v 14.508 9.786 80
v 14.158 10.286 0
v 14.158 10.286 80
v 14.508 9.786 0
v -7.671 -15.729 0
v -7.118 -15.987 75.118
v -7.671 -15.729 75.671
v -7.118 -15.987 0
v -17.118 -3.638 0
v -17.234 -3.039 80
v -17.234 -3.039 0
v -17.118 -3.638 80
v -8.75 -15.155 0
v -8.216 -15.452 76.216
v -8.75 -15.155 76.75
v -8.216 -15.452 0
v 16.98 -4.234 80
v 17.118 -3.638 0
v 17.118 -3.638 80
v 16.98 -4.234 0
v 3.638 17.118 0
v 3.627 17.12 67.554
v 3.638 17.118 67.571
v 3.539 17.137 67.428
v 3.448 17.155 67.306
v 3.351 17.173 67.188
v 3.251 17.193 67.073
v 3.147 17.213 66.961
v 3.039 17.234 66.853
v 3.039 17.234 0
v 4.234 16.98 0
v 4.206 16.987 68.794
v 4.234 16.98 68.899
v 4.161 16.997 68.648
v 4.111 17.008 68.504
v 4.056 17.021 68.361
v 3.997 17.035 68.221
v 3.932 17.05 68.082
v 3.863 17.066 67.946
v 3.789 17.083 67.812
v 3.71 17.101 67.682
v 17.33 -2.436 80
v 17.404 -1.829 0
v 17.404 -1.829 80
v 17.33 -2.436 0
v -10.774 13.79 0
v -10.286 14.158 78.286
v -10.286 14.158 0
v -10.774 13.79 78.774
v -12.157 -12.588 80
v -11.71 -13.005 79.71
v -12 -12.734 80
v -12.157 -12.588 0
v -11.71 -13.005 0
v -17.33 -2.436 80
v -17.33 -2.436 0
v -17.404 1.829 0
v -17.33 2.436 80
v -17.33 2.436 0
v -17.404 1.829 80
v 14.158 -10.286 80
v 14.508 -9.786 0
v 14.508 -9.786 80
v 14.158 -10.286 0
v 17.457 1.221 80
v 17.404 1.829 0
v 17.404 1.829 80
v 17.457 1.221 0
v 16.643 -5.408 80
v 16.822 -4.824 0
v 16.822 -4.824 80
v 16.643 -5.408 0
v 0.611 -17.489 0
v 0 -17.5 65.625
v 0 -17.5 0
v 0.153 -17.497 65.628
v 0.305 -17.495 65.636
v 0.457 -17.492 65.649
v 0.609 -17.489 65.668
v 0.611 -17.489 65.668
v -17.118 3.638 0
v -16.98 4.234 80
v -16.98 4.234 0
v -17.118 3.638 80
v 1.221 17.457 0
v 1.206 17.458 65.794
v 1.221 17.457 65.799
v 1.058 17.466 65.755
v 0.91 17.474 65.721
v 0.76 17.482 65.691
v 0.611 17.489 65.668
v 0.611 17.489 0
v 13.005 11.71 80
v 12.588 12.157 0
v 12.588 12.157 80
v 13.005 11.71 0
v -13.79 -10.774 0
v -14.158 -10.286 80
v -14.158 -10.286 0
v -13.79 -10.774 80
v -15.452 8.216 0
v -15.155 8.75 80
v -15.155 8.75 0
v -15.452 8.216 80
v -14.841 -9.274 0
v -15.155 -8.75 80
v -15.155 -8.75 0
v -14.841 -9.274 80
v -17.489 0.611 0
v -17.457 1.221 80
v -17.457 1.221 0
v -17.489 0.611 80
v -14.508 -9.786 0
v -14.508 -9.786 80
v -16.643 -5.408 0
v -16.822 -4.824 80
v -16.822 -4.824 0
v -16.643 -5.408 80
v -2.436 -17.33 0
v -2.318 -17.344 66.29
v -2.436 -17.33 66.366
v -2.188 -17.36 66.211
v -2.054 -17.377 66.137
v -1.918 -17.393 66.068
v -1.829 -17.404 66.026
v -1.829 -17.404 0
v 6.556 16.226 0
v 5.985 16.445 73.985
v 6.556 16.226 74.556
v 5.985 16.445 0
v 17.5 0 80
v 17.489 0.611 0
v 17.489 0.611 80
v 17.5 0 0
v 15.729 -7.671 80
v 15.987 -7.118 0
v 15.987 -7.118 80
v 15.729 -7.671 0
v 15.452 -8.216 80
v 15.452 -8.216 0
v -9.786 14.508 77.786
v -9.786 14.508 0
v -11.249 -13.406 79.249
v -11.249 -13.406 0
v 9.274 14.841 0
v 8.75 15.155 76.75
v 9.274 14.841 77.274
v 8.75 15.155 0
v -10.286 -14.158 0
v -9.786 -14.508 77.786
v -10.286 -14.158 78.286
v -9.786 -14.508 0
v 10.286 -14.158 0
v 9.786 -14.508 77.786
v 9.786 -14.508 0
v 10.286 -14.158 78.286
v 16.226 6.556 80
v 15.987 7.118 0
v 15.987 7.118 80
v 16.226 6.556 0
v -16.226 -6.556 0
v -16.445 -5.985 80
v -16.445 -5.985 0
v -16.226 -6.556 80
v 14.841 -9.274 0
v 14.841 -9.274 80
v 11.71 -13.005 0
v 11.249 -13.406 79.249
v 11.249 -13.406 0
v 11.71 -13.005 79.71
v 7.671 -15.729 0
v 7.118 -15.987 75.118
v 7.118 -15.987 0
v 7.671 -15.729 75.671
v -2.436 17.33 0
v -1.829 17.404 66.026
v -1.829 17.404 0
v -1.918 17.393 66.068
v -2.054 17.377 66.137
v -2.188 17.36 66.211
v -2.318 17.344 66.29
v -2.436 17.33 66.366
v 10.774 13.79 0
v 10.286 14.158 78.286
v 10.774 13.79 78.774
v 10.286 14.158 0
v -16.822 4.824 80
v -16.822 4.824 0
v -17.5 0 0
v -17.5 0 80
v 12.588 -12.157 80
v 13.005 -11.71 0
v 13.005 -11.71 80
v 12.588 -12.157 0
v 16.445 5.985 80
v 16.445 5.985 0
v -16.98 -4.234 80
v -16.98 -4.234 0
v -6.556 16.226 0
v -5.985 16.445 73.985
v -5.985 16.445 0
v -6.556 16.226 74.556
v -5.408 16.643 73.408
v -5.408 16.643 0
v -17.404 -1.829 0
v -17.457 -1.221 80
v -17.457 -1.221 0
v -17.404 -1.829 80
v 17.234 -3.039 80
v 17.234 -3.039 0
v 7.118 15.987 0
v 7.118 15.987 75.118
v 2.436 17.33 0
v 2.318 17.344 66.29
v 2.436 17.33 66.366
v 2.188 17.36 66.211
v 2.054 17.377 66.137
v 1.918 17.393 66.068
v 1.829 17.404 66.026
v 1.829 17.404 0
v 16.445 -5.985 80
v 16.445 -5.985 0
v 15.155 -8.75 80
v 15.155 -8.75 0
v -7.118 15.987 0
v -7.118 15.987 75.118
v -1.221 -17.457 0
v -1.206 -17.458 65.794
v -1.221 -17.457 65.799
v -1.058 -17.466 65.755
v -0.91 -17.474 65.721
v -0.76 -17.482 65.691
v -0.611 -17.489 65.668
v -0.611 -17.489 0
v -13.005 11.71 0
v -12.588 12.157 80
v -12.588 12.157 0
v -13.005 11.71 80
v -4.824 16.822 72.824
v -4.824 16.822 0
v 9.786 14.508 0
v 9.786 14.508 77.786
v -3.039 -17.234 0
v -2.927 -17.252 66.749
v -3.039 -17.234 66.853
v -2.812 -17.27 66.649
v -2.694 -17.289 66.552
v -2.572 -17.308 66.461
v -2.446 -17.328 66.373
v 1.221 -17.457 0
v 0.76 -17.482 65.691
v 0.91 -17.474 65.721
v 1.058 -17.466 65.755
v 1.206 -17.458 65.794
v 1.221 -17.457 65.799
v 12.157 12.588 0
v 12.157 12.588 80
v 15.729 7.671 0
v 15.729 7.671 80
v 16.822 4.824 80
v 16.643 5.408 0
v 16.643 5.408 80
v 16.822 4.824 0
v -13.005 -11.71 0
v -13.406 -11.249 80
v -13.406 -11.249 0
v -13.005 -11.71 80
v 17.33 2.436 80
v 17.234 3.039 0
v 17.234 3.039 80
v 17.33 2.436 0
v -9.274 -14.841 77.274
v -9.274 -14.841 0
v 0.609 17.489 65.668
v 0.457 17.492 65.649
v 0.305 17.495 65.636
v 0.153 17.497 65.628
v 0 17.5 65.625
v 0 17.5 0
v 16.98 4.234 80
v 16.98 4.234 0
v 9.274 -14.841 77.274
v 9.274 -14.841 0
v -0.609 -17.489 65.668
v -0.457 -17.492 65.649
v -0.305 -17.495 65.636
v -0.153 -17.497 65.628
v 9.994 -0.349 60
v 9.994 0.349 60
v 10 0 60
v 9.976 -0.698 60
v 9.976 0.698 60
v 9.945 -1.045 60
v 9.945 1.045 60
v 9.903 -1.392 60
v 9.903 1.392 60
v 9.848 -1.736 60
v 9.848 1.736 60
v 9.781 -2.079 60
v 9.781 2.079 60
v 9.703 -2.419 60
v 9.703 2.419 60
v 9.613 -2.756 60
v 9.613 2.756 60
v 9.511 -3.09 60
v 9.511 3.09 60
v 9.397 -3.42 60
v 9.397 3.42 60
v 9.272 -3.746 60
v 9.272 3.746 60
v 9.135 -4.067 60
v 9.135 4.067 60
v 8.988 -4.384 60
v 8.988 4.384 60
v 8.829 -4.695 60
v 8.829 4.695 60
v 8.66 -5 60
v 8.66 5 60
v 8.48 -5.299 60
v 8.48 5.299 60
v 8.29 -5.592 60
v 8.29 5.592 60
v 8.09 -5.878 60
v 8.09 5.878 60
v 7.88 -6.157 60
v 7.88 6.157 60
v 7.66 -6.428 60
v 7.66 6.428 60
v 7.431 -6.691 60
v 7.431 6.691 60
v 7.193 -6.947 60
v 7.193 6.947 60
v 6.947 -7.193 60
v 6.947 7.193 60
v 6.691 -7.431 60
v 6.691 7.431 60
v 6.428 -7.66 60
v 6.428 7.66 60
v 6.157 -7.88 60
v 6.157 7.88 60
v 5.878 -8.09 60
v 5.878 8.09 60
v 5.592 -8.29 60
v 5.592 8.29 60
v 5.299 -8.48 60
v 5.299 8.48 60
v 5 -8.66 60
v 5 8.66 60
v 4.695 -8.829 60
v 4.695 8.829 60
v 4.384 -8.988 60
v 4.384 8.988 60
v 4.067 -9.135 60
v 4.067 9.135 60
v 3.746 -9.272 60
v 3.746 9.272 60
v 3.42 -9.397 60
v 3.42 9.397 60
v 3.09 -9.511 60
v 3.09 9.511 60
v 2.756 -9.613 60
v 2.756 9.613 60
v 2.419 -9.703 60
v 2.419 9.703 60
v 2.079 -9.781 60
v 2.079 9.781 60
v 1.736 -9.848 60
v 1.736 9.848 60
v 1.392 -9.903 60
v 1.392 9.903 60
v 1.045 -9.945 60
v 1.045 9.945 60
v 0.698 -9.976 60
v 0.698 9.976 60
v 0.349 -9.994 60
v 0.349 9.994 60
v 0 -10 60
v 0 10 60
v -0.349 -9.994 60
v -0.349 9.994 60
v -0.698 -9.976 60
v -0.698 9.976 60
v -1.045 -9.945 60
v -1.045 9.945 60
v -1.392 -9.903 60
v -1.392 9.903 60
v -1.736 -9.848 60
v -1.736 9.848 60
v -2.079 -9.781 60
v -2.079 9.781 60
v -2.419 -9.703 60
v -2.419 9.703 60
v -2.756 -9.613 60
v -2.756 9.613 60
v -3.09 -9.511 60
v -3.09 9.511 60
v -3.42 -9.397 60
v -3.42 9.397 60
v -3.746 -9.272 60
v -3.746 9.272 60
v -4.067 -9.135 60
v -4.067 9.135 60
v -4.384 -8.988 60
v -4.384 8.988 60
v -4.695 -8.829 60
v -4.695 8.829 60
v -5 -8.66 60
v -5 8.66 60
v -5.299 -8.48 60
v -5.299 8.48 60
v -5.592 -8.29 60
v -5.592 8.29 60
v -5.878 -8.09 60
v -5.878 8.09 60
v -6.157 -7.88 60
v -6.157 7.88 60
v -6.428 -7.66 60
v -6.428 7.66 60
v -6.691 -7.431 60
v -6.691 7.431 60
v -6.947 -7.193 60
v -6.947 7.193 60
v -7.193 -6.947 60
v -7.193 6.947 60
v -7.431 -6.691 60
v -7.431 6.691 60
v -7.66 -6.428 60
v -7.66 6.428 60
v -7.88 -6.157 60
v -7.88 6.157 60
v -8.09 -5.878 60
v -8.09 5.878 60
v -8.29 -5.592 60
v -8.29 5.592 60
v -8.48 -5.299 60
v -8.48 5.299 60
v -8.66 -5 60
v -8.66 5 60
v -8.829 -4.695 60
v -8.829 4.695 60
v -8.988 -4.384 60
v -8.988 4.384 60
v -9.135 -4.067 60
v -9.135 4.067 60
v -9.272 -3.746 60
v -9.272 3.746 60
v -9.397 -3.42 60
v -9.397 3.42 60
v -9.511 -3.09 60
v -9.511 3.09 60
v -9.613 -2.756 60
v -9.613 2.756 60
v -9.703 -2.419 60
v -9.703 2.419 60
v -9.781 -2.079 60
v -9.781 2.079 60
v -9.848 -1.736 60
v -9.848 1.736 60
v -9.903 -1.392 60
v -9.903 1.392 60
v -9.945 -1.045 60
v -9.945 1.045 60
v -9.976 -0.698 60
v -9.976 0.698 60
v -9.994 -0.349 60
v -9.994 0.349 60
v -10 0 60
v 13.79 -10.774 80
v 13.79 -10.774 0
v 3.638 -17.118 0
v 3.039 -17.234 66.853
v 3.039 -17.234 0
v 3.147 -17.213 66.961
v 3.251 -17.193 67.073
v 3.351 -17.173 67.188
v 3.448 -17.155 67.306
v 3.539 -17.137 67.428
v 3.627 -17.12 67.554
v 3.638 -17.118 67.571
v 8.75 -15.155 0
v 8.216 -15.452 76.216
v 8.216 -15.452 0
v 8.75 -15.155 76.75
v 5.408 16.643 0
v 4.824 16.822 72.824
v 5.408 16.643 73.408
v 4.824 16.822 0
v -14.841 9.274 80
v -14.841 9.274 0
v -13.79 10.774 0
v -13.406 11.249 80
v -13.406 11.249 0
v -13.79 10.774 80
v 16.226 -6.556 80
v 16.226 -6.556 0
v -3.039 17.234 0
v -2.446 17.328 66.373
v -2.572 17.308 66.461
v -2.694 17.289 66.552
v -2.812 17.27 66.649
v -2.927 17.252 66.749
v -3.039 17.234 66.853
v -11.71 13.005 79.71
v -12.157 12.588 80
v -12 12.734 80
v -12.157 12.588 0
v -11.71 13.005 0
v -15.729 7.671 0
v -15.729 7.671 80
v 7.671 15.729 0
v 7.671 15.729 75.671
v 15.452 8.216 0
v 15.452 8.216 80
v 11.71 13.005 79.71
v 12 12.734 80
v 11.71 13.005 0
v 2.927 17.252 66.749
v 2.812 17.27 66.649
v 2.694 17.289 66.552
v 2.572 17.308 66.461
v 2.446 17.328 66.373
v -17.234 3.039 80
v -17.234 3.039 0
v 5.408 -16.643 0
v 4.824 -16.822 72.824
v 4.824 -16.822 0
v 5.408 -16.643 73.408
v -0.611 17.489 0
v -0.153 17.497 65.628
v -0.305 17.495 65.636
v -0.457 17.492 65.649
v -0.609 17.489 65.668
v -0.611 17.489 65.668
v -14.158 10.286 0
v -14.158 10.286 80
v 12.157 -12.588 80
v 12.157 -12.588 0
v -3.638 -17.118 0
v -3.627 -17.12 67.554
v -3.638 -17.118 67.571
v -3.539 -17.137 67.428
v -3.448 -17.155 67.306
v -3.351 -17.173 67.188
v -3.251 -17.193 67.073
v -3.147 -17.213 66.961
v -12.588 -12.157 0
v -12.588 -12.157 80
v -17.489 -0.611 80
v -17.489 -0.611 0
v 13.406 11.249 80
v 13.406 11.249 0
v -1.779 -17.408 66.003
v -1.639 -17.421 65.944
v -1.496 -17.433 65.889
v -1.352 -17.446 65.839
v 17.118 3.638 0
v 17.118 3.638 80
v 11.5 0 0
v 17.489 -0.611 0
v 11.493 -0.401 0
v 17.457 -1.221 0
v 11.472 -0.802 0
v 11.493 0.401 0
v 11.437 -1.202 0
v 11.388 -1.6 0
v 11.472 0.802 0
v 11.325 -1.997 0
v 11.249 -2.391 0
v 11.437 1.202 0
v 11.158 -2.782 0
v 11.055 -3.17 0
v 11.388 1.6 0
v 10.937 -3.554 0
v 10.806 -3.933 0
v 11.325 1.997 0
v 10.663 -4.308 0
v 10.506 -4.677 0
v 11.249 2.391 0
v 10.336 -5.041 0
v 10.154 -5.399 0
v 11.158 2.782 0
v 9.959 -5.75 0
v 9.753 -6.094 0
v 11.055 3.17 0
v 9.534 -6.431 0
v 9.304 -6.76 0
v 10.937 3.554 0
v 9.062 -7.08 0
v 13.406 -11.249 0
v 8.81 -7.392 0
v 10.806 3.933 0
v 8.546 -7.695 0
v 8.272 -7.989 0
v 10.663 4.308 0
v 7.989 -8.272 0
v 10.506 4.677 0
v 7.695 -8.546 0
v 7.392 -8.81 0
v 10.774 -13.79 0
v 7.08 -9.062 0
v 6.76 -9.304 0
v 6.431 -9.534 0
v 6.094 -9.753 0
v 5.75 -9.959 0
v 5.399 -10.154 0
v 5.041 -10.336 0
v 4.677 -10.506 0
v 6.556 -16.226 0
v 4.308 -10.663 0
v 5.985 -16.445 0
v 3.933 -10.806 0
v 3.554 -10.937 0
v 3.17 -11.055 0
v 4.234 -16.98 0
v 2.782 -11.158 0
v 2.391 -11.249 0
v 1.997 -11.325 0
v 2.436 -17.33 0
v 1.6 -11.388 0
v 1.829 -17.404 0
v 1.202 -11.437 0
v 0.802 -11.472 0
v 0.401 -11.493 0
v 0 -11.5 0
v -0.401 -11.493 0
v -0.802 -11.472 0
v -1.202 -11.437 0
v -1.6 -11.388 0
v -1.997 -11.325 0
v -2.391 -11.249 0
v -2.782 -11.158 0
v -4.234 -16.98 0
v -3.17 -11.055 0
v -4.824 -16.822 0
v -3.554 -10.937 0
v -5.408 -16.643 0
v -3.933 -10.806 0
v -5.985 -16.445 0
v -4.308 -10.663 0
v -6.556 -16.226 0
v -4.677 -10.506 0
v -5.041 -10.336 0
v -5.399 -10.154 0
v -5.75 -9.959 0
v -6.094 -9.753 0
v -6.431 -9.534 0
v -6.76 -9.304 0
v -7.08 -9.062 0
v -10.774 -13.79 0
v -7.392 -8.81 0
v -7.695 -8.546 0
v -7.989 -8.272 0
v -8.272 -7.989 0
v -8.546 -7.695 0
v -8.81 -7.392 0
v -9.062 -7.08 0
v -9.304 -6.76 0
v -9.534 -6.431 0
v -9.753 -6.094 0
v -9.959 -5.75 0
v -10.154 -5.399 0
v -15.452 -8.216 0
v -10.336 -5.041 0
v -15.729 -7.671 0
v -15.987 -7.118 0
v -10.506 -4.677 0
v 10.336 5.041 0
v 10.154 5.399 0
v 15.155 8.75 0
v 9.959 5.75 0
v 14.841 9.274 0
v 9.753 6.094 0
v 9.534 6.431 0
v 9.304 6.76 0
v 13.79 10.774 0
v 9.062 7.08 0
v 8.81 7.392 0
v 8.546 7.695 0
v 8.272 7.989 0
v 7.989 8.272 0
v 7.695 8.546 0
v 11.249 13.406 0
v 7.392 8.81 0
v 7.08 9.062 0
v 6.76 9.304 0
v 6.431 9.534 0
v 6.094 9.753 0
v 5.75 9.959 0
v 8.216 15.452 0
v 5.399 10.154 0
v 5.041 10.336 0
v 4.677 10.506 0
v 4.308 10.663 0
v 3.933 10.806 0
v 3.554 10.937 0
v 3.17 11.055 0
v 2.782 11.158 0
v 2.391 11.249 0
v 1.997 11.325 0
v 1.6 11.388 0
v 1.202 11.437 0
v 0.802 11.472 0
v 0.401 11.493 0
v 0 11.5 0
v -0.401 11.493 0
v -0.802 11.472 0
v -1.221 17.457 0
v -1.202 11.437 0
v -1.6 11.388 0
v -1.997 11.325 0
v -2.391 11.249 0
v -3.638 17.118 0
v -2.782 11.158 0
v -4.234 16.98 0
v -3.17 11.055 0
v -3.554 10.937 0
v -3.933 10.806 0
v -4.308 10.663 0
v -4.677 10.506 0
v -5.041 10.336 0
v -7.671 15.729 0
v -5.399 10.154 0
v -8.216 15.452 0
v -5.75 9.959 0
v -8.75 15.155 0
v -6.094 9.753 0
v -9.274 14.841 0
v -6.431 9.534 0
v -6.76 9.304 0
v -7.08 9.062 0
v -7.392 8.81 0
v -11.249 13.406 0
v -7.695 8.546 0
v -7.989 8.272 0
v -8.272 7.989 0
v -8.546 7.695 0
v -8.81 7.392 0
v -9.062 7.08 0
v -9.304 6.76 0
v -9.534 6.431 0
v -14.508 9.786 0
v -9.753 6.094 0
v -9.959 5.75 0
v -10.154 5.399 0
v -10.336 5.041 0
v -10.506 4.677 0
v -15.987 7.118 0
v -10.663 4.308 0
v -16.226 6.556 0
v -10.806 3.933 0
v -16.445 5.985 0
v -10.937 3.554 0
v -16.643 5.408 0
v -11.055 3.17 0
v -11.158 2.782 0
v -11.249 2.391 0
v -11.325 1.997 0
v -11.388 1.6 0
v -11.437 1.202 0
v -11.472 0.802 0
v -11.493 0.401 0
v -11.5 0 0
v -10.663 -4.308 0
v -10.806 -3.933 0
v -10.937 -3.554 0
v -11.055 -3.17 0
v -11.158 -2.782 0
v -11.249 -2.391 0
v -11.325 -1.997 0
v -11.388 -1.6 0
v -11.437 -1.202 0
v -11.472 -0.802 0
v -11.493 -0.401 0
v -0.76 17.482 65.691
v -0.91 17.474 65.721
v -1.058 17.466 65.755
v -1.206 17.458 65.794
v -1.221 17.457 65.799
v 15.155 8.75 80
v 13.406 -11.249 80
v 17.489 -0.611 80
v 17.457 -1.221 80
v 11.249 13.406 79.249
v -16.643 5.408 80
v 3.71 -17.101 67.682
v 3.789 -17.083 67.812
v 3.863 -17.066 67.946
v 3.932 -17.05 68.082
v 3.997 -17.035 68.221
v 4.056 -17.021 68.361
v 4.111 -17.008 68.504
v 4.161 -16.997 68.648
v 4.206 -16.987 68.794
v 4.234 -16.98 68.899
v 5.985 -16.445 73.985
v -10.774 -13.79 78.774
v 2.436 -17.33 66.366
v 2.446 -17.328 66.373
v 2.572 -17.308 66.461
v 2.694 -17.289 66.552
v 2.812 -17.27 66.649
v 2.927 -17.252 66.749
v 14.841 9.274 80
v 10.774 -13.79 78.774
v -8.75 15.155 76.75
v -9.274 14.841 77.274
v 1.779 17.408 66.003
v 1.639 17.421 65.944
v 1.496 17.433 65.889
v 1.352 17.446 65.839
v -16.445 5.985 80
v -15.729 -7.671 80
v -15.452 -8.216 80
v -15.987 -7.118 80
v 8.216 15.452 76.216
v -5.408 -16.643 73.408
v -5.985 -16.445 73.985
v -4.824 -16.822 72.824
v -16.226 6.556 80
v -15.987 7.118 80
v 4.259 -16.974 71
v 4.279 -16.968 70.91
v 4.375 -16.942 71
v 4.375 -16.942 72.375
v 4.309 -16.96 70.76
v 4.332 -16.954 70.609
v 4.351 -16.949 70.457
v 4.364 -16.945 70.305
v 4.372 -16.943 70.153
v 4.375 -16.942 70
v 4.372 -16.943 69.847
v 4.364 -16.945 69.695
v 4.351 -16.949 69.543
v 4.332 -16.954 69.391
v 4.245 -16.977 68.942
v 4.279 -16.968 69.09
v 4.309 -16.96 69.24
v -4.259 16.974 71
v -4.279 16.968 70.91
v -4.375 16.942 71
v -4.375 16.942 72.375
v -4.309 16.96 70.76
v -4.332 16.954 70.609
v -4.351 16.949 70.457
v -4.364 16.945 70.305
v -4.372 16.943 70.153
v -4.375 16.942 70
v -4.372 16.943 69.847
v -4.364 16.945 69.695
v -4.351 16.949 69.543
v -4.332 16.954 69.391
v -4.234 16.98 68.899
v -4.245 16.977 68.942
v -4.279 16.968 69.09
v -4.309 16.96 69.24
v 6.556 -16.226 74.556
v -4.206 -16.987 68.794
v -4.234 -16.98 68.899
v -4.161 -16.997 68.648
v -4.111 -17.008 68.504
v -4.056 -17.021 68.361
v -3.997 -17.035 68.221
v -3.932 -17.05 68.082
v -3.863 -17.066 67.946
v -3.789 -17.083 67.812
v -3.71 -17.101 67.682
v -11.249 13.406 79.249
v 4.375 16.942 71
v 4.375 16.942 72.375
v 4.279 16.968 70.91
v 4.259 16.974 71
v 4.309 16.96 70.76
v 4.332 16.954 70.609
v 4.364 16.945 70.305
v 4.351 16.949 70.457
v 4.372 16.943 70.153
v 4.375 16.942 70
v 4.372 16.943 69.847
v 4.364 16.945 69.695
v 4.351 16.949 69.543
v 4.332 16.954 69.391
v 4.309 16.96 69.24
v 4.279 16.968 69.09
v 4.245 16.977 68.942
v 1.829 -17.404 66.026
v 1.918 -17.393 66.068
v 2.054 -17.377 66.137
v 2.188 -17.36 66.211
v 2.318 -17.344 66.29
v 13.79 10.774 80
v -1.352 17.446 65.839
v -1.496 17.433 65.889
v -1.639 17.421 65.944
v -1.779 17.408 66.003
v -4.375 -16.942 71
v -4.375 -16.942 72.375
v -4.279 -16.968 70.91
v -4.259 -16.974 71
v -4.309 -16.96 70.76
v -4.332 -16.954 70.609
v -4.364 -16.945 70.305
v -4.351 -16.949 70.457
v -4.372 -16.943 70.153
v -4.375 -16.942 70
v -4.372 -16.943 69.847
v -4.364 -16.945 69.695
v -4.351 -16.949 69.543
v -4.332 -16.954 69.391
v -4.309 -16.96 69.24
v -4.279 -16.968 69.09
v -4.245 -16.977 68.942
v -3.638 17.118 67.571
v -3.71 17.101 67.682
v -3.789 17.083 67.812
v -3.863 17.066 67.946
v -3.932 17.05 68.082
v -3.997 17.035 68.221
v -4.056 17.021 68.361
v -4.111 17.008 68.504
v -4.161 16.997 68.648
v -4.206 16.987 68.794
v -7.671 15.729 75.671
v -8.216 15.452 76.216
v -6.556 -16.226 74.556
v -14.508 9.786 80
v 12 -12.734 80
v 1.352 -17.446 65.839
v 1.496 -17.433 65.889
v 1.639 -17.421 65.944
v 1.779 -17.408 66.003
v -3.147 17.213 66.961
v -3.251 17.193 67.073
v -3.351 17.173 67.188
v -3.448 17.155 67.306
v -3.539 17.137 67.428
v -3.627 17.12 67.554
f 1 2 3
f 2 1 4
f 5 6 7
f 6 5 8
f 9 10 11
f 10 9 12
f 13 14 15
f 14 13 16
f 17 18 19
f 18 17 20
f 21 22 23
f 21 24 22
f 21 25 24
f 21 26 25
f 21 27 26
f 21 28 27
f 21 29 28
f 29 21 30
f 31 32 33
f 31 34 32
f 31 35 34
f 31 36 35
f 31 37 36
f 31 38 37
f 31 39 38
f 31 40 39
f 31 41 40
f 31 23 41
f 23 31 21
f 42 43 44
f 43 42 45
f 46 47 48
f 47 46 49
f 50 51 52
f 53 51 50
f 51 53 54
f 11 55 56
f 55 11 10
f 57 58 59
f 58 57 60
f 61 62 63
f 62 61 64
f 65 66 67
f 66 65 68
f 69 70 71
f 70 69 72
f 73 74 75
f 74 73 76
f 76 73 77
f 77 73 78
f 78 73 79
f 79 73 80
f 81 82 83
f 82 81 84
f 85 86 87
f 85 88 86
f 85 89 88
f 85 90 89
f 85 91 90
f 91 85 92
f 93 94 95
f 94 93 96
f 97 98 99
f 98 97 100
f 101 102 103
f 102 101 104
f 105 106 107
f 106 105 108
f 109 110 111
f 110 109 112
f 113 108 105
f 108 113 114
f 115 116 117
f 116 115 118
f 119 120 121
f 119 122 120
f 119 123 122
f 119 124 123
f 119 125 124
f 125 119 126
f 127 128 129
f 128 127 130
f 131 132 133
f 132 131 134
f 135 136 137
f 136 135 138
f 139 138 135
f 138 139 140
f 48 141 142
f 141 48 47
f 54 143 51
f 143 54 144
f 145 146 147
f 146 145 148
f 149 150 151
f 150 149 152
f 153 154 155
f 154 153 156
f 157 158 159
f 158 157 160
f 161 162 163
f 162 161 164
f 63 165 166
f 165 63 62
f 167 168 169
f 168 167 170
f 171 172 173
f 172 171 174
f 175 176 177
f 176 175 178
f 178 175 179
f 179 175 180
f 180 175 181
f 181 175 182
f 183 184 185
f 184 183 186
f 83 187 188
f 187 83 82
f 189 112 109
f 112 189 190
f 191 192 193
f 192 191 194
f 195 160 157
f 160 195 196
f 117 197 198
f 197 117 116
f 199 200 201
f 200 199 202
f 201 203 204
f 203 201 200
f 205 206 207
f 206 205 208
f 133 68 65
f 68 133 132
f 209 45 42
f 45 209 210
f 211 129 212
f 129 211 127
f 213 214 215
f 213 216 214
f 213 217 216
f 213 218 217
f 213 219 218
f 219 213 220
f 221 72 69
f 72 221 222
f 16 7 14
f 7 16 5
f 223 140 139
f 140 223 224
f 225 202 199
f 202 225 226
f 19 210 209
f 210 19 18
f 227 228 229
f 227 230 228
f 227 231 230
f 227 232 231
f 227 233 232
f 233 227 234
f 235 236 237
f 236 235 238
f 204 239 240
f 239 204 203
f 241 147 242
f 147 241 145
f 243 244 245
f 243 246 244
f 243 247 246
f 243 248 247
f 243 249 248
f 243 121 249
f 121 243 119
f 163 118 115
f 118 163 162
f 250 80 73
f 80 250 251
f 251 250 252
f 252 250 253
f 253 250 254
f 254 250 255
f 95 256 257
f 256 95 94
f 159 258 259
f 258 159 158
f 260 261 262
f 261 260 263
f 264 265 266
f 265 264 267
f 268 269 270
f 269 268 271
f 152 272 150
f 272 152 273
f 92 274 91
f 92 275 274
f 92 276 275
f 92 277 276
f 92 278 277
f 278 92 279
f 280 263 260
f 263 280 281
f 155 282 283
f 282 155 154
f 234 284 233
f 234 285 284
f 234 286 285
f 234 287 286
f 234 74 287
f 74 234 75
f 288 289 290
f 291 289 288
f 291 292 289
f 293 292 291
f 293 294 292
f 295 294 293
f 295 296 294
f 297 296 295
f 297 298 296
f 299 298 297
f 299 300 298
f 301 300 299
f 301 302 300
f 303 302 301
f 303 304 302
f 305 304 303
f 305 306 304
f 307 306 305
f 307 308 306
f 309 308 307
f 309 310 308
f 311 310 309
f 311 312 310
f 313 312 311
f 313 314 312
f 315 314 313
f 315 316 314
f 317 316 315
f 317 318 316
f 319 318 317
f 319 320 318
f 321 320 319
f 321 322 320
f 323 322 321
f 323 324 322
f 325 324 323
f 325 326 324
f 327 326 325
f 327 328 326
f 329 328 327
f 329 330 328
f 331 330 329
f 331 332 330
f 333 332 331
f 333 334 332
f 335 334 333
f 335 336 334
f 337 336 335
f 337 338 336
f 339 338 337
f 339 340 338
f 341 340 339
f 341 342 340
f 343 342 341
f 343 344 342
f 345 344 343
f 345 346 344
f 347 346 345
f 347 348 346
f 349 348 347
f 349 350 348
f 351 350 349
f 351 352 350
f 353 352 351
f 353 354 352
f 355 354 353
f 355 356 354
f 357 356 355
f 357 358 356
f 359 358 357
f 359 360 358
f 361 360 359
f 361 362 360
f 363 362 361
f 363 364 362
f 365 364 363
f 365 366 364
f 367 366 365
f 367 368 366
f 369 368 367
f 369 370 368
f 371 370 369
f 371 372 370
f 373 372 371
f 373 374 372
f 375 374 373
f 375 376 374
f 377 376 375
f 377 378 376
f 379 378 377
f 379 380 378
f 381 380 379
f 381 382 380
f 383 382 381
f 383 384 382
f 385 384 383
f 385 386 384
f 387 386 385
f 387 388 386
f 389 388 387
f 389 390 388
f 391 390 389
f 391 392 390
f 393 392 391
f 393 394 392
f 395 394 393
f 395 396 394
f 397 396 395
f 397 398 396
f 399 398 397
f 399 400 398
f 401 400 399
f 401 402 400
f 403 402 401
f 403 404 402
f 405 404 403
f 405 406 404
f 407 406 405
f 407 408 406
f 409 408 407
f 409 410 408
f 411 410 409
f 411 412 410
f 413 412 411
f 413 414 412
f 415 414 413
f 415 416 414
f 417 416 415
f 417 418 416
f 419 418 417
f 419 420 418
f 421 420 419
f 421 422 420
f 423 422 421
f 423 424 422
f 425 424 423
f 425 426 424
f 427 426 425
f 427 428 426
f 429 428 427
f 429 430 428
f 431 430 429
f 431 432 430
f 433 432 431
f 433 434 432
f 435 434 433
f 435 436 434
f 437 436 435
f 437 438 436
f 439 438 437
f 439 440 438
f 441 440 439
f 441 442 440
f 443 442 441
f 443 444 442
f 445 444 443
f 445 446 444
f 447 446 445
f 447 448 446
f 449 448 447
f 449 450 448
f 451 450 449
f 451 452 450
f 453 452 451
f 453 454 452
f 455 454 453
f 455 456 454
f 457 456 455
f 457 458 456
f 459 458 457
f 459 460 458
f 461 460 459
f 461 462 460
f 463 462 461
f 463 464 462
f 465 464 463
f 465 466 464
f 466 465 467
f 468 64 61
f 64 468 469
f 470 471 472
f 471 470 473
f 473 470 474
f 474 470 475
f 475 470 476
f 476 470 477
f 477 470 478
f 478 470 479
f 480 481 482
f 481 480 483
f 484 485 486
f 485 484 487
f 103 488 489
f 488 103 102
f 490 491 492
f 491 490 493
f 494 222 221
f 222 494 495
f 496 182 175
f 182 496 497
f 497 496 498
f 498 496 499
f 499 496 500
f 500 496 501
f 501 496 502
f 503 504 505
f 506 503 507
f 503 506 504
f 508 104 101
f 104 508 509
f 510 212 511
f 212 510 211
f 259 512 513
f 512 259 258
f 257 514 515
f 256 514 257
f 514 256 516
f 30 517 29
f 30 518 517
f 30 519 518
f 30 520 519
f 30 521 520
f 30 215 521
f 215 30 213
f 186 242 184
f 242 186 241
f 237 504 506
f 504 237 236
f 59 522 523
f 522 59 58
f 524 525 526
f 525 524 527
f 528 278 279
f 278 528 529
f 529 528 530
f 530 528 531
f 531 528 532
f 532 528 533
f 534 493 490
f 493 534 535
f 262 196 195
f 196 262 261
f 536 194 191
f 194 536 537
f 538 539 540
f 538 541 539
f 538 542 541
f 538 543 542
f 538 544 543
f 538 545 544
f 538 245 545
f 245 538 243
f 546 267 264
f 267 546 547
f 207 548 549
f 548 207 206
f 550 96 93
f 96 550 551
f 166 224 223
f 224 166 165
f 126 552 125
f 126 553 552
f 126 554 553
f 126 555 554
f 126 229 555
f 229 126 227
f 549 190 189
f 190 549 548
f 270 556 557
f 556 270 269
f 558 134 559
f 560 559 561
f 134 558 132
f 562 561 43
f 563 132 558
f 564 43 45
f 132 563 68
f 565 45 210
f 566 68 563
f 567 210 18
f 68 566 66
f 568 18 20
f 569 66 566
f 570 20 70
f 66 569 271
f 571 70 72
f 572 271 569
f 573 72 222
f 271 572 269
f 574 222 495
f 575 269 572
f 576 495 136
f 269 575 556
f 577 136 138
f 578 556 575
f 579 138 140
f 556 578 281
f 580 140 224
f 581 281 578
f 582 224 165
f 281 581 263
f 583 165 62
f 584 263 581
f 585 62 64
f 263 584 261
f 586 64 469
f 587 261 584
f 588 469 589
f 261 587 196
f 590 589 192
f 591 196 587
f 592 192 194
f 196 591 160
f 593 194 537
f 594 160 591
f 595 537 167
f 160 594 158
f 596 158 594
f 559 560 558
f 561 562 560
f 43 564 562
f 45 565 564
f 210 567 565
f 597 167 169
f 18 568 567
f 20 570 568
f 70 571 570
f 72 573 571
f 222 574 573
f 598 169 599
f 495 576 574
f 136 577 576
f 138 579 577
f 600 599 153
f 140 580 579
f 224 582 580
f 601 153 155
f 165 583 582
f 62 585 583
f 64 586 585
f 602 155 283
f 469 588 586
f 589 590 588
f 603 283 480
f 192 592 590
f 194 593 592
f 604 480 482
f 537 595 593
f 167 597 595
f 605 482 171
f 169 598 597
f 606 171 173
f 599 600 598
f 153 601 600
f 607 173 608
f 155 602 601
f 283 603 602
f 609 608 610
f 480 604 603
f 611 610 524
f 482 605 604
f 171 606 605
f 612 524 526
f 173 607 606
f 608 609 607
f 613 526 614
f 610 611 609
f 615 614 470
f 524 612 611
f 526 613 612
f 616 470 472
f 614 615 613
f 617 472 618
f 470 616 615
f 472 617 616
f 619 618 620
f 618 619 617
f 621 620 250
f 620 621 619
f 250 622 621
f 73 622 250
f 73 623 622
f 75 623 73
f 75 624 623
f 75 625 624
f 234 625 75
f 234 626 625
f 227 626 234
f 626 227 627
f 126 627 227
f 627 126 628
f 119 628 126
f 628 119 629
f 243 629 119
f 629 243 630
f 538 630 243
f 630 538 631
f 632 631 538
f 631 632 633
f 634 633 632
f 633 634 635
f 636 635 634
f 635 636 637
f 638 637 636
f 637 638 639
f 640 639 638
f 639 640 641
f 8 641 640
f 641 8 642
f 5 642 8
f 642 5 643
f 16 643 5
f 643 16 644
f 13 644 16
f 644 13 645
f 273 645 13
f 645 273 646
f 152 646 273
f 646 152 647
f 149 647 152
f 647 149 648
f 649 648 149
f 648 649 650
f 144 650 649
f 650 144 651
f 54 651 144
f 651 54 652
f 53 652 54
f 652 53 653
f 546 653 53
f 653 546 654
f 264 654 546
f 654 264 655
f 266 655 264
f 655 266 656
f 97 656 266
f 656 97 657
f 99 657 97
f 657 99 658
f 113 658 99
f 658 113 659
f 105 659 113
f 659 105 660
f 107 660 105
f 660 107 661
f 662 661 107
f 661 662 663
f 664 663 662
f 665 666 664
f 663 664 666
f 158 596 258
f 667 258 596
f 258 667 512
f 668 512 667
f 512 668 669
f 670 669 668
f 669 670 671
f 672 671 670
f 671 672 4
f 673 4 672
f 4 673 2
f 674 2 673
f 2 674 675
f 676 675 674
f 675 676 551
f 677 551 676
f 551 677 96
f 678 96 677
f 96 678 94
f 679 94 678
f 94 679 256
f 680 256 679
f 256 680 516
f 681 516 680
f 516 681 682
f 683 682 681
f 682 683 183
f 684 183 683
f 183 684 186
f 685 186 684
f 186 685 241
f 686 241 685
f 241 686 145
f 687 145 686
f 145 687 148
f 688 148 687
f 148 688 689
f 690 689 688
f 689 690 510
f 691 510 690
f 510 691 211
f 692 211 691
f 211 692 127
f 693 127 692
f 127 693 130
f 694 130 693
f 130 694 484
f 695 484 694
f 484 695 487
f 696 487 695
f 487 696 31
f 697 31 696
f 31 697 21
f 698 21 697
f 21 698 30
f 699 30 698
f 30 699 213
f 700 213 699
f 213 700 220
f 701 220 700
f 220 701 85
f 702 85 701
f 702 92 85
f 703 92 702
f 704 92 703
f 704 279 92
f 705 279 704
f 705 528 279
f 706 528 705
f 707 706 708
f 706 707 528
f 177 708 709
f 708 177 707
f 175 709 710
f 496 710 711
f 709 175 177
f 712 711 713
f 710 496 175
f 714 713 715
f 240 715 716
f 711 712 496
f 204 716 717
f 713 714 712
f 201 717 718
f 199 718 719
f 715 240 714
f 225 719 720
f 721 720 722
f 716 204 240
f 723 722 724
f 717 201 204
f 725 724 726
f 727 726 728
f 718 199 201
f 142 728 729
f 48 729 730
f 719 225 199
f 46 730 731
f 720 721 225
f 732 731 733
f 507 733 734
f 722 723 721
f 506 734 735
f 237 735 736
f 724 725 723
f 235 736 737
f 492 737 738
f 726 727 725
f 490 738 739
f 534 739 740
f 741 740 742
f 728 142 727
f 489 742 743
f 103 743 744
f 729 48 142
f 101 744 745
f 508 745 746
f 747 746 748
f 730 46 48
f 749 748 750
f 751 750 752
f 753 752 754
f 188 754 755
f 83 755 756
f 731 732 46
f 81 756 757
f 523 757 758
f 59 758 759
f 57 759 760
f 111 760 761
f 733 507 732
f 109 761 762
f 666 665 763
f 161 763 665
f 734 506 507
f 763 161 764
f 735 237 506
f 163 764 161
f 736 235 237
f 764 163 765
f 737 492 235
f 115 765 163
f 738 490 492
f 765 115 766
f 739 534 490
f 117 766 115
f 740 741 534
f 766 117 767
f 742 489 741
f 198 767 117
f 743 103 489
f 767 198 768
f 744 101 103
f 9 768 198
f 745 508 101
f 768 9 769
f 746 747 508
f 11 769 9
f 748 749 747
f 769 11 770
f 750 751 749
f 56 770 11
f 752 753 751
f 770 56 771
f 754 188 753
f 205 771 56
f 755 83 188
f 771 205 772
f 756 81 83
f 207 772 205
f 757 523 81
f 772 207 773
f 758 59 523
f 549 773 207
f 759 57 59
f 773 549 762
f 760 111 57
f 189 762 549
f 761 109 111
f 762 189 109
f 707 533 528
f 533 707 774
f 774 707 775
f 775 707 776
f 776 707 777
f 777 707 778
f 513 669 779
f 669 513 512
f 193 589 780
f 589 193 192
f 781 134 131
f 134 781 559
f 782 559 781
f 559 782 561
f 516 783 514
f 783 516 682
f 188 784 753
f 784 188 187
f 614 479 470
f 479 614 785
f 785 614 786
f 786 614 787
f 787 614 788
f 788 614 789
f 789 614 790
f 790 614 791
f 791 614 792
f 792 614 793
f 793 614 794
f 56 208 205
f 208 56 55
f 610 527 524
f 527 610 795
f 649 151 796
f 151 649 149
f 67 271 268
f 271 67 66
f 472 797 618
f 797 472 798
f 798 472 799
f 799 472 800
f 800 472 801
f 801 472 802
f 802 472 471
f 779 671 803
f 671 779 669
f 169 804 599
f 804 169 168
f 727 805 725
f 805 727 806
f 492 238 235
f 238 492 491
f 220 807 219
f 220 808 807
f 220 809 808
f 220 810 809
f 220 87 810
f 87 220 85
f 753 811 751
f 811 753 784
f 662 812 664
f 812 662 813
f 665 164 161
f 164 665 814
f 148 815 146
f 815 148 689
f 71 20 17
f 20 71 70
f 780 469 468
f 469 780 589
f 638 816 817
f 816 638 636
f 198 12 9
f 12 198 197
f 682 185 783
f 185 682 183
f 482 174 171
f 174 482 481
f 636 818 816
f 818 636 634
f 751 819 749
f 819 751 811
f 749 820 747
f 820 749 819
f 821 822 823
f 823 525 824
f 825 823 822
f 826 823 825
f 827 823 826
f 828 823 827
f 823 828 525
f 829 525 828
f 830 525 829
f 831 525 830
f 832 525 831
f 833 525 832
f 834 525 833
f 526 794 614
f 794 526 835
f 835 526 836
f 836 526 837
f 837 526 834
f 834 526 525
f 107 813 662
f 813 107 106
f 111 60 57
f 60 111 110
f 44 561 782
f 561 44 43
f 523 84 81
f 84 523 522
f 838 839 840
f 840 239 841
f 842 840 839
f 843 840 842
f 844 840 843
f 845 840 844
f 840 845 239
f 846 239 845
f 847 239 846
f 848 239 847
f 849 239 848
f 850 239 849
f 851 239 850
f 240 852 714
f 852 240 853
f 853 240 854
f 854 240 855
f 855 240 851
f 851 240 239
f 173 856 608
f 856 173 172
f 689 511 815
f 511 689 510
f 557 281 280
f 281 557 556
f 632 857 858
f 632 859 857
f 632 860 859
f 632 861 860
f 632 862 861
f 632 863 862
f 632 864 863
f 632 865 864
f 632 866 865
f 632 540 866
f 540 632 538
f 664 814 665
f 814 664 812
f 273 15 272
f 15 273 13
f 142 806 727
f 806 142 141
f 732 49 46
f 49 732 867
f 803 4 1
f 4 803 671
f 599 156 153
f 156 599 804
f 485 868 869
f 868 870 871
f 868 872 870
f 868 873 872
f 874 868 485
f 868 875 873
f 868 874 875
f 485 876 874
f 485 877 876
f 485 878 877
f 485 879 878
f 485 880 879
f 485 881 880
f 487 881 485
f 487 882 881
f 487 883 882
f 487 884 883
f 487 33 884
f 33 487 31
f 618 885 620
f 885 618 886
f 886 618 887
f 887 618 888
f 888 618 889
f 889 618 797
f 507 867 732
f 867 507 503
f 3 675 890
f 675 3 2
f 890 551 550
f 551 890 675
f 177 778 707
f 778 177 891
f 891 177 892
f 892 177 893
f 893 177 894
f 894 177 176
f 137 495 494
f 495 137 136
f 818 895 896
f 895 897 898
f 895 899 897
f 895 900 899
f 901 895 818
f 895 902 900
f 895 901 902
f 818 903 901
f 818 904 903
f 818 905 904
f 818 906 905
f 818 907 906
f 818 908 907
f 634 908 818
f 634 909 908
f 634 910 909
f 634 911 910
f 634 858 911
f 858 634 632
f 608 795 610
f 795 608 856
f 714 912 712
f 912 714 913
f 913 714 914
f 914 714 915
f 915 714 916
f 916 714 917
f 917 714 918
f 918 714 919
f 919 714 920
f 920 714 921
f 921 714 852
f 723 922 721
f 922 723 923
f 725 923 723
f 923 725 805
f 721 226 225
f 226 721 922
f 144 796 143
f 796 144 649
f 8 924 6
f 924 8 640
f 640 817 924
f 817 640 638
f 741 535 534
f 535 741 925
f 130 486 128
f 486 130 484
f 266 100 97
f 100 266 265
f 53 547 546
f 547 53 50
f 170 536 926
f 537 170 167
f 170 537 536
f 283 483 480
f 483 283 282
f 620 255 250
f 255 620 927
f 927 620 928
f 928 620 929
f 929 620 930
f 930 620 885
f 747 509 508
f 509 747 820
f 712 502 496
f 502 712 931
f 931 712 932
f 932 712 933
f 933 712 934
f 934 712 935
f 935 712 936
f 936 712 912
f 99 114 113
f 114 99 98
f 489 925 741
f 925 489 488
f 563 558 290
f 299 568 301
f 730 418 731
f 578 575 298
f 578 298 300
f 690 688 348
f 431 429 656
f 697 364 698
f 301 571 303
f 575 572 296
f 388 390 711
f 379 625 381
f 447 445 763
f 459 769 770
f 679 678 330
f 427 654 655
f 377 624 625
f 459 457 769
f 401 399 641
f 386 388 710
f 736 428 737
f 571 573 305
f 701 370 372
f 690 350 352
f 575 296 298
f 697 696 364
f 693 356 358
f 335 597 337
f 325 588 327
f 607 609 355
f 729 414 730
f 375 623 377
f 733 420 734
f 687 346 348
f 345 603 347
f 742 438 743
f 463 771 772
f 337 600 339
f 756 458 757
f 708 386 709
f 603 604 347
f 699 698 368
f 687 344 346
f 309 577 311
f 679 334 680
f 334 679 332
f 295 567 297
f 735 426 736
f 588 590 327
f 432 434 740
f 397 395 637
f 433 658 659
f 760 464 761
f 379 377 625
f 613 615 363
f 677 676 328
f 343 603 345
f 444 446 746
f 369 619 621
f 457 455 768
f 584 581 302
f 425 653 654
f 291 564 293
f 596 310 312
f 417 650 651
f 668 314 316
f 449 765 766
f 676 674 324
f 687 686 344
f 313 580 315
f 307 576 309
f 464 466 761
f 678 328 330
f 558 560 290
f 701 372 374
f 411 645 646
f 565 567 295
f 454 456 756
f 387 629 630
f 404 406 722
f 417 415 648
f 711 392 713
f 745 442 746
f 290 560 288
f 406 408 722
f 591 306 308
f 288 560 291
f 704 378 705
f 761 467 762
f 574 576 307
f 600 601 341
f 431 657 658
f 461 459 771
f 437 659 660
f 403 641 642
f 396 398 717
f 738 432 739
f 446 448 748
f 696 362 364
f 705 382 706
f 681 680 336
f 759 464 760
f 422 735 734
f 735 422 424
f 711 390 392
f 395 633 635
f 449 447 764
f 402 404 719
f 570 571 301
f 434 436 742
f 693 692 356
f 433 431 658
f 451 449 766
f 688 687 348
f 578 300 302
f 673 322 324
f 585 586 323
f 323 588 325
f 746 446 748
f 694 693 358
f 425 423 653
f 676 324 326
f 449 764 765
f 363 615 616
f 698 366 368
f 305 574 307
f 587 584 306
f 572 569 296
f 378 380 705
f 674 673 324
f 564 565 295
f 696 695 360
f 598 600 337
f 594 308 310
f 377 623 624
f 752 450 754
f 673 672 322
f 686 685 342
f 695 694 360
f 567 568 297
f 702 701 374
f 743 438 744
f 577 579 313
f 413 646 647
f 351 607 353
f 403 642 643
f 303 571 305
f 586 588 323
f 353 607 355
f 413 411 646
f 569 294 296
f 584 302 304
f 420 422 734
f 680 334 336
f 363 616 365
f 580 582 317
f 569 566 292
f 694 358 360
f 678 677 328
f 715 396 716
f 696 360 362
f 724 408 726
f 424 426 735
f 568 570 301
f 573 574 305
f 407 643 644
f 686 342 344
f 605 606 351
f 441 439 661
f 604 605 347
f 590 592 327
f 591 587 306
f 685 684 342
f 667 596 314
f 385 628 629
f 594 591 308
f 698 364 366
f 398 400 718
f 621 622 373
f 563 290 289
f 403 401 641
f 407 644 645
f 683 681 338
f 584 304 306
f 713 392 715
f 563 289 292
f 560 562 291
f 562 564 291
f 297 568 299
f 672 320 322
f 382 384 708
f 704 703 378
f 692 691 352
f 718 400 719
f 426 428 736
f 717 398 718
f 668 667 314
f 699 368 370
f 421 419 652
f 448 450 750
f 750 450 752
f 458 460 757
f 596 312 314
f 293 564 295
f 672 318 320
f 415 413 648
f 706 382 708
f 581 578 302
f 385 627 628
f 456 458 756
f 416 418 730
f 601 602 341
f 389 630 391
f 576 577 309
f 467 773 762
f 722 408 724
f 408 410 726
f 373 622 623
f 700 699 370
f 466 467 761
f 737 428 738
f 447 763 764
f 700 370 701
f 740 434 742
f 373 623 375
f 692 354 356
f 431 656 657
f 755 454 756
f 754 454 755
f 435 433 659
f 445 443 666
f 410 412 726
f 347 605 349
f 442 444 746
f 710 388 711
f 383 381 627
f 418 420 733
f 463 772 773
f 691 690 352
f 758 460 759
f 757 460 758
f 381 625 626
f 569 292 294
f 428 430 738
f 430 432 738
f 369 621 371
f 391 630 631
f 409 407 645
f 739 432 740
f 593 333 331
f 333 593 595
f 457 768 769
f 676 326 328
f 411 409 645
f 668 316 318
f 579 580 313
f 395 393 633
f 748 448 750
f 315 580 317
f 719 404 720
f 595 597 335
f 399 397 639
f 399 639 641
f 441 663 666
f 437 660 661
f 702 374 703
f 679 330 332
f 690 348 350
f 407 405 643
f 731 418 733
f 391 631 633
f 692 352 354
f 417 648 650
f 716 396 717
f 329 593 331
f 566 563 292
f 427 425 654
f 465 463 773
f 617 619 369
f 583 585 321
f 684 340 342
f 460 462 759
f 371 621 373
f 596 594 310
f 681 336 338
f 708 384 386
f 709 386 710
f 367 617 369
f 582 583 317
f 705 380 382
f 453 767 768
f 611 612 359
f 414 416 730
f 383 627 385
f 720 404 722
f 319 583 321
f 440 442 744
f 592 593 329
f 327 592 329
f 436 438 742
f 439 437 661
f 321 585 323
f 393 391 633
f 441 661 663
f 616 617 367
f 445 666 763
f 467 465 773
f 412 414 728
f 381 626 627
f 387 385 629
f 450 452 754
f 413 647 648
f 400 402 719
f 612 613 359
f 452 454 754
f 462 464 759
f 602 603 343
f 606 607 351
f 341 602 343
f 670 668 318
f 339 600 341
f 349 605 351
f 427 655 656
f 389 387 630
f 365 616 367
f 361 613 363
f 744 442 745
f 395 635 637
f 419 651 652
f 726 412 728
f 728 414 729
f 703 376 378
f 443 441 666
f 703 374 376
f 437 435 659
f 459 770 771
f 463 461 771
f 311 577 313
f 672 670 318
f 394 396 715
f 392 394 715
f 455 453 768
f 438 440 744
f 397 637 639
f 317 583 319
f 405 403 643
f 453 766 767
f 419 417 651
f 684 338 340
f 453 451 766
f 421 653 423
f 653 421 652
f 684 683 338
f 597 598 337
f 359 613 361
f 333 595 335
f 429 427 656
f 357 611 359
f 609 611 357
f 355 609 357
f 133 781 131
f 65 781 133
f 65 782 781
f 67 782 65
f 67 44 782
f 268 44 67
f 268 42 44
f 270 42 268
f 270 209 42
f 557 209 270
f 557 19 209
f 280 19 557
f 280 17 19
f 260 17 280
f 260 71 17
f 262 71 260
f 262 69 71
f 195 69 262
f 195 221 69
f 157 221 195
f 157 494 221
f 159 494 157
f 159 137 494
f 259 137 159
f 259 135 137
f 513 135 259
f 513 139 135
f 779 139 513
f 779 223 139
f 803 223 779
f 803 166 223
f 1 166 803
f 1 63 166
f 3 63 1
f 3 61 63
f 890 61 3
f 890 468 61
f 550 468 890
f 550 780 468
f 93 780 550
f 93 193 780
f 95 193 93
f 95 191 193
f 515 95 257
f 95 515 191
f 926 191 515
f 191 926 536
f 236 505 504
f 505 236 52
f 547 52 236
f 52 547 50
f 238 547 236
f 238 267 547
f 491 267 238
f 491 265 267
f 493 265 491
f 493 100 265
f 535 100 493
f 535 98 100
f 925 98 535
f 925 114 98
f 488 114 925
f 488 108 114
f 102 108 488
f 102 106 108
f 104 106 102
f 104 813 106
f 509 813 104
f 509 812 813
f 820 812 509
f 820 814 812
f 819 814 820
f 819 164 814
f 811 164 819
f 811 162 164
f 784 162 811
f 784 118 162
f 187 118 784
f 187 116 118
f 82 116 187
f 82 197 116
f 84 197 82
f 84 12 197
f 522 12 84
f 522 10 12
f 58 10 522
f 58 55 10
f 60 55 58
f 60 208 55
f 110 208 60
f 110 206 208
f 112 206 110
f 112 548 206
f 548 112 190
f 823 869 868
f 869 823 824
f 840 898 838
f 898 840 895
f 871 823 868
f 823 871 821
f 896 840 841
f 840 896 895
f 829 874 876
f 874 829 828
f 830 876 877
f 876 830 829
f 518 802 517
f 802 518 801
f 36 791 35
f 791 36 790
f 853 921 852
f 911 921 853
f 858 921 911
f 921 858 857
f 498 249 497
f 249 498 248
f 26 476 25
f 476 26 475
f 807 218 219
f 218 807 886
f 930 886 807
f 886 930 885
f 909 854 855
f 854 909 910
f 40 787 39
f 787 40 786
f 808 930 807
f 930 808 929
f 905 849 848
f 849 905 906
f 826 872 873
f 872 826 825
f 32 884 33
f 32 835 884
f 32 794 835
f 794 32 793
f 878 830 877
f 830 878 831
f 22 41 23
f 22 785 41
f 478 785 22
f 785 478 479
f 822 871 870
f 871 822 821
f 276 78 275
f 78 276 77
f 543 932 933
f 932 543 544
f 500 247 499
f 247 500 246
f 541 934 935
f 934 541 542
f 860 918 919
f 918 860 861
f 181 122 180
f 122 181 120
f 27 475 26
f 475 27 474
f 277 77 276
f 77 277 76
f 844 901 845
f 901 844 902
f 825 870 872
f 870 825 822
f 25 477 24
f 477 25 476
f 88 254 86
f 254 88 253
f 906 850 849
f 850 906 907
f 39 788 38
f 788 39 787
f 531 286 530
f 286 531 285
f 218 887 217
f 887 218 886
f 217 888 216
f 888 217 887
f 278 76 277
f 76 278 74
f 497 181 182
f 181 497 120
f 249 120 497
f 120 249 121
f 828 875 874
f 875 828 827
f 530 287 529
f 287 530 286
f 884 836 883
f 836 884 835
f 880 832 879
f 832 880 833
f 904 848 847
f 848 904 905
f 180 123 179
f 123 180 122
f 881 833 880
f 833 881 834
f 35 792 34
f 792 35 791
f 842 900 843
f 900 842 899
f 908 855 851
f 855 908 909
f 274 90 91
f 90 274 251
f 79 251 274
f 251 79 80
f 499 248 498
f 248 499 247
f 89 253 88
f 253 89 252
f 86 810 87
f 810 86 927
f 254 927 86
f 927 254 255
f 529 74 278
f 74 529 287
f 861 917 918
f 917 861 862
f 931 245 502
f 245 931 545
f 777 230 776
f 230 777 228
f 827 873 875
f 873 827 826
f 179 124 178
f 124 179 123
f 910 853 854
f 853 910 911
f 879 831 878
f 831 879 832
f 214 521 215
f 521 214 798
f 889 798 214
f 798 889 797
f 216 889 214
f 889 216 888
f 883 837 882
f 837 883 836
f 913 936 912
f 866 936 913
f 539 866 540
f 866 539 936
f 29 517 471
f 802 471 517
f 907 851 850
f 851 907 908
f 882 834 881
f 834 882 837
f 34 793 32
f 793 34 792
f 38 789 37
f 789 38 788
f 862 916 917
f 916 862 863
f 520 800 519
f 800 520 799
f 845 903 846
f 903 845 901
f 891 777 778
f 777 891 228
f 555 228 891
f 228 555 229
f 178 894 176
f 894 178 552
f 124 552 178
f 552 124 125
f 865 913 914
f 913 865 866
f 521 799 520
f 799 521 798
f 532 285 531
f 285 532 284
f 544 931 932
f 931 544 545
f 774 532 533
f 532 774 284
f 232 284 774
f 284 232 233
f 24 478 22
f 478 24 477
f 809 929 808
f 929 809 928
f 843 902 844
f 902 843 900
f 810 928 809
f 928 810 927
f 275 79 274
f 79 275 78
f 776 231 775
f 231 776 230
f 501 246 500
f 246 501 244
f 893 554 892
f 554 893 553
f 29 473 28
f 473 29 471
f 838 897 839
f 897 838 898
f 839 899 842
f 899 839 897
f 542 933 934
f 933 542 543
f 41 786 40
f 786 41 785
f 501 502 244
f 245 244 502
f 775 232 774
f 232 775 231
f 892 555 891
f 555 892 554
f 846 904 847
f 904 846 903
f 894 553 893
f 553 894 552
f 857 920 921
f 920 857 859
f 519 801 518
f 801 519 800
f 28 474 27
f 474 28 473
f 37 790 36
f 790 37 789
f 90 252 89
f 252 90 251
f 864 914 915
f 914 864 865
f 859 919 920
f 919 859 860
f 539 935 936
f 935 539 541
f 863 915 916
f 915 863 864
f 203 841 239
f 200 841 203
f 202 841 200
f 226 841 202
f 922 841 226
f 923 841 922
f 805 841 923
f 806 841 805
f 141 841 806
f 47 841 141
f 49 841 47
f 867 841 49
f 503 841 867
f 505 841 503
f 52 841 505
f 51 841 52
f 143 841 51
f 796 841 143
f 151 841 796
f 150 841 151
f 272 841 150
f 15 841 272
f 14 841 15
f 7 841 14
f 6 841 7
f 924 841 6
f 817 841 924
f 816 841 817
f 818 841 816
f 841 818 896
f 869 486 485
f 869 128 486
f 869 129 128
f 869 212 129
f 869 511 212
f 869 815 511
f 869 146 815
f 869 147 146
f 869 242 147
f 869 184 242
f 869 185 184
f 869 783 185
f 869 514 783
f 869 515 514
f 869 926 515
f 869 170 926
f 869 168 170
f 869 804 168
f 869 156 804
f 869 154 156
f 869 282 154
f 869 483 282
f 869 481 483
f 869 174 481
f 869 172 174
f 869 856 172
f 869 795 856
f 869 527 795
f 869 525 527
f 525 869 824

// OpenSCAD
/**
 * Fits over the end of a Harris paint pole to convert it into a clothes line prop.
 */
 
$fn=180;
innerwidth_base=23/2;
innerwidth_top=20/2;
wall=6;
base_height=60;
fork_height=20;
slot_width=(innerwidth_base+wall)/2;



module base(length, innerwidth_base, innerwidth_top, wall) {
    
    difference() {
	cylinder(length,innerwidth_base+wall,innerwidth_base+wall);
    cylinder(length,innerwidth_base,innerwidth_top);

    }

}

module fork(base,height,slot_width) {

    difference() {
        
        // Extend the base
        cylinder(height,base,base);
        
        // Cut a slot and round
        translate([-base/4, -base, (height/2) +1]) {
            cube([slot_width, base*3, height]);           
        }
        translate([0,base+1,height/2]) rotate([90,0,0]) cylinder(base*3,slot_width/2,slot_width/2);

        translate([0,-base,height-12])  rotate([0,-45,0])  cube([base,base*3,base]); 
    }
    
    
}

base(base_height,innerwidth_base,innerwidth_top,wall);

translate([0,0,base_height]) {
    fork(innerwidth_base+wall,fork_height, slot_width);
}
